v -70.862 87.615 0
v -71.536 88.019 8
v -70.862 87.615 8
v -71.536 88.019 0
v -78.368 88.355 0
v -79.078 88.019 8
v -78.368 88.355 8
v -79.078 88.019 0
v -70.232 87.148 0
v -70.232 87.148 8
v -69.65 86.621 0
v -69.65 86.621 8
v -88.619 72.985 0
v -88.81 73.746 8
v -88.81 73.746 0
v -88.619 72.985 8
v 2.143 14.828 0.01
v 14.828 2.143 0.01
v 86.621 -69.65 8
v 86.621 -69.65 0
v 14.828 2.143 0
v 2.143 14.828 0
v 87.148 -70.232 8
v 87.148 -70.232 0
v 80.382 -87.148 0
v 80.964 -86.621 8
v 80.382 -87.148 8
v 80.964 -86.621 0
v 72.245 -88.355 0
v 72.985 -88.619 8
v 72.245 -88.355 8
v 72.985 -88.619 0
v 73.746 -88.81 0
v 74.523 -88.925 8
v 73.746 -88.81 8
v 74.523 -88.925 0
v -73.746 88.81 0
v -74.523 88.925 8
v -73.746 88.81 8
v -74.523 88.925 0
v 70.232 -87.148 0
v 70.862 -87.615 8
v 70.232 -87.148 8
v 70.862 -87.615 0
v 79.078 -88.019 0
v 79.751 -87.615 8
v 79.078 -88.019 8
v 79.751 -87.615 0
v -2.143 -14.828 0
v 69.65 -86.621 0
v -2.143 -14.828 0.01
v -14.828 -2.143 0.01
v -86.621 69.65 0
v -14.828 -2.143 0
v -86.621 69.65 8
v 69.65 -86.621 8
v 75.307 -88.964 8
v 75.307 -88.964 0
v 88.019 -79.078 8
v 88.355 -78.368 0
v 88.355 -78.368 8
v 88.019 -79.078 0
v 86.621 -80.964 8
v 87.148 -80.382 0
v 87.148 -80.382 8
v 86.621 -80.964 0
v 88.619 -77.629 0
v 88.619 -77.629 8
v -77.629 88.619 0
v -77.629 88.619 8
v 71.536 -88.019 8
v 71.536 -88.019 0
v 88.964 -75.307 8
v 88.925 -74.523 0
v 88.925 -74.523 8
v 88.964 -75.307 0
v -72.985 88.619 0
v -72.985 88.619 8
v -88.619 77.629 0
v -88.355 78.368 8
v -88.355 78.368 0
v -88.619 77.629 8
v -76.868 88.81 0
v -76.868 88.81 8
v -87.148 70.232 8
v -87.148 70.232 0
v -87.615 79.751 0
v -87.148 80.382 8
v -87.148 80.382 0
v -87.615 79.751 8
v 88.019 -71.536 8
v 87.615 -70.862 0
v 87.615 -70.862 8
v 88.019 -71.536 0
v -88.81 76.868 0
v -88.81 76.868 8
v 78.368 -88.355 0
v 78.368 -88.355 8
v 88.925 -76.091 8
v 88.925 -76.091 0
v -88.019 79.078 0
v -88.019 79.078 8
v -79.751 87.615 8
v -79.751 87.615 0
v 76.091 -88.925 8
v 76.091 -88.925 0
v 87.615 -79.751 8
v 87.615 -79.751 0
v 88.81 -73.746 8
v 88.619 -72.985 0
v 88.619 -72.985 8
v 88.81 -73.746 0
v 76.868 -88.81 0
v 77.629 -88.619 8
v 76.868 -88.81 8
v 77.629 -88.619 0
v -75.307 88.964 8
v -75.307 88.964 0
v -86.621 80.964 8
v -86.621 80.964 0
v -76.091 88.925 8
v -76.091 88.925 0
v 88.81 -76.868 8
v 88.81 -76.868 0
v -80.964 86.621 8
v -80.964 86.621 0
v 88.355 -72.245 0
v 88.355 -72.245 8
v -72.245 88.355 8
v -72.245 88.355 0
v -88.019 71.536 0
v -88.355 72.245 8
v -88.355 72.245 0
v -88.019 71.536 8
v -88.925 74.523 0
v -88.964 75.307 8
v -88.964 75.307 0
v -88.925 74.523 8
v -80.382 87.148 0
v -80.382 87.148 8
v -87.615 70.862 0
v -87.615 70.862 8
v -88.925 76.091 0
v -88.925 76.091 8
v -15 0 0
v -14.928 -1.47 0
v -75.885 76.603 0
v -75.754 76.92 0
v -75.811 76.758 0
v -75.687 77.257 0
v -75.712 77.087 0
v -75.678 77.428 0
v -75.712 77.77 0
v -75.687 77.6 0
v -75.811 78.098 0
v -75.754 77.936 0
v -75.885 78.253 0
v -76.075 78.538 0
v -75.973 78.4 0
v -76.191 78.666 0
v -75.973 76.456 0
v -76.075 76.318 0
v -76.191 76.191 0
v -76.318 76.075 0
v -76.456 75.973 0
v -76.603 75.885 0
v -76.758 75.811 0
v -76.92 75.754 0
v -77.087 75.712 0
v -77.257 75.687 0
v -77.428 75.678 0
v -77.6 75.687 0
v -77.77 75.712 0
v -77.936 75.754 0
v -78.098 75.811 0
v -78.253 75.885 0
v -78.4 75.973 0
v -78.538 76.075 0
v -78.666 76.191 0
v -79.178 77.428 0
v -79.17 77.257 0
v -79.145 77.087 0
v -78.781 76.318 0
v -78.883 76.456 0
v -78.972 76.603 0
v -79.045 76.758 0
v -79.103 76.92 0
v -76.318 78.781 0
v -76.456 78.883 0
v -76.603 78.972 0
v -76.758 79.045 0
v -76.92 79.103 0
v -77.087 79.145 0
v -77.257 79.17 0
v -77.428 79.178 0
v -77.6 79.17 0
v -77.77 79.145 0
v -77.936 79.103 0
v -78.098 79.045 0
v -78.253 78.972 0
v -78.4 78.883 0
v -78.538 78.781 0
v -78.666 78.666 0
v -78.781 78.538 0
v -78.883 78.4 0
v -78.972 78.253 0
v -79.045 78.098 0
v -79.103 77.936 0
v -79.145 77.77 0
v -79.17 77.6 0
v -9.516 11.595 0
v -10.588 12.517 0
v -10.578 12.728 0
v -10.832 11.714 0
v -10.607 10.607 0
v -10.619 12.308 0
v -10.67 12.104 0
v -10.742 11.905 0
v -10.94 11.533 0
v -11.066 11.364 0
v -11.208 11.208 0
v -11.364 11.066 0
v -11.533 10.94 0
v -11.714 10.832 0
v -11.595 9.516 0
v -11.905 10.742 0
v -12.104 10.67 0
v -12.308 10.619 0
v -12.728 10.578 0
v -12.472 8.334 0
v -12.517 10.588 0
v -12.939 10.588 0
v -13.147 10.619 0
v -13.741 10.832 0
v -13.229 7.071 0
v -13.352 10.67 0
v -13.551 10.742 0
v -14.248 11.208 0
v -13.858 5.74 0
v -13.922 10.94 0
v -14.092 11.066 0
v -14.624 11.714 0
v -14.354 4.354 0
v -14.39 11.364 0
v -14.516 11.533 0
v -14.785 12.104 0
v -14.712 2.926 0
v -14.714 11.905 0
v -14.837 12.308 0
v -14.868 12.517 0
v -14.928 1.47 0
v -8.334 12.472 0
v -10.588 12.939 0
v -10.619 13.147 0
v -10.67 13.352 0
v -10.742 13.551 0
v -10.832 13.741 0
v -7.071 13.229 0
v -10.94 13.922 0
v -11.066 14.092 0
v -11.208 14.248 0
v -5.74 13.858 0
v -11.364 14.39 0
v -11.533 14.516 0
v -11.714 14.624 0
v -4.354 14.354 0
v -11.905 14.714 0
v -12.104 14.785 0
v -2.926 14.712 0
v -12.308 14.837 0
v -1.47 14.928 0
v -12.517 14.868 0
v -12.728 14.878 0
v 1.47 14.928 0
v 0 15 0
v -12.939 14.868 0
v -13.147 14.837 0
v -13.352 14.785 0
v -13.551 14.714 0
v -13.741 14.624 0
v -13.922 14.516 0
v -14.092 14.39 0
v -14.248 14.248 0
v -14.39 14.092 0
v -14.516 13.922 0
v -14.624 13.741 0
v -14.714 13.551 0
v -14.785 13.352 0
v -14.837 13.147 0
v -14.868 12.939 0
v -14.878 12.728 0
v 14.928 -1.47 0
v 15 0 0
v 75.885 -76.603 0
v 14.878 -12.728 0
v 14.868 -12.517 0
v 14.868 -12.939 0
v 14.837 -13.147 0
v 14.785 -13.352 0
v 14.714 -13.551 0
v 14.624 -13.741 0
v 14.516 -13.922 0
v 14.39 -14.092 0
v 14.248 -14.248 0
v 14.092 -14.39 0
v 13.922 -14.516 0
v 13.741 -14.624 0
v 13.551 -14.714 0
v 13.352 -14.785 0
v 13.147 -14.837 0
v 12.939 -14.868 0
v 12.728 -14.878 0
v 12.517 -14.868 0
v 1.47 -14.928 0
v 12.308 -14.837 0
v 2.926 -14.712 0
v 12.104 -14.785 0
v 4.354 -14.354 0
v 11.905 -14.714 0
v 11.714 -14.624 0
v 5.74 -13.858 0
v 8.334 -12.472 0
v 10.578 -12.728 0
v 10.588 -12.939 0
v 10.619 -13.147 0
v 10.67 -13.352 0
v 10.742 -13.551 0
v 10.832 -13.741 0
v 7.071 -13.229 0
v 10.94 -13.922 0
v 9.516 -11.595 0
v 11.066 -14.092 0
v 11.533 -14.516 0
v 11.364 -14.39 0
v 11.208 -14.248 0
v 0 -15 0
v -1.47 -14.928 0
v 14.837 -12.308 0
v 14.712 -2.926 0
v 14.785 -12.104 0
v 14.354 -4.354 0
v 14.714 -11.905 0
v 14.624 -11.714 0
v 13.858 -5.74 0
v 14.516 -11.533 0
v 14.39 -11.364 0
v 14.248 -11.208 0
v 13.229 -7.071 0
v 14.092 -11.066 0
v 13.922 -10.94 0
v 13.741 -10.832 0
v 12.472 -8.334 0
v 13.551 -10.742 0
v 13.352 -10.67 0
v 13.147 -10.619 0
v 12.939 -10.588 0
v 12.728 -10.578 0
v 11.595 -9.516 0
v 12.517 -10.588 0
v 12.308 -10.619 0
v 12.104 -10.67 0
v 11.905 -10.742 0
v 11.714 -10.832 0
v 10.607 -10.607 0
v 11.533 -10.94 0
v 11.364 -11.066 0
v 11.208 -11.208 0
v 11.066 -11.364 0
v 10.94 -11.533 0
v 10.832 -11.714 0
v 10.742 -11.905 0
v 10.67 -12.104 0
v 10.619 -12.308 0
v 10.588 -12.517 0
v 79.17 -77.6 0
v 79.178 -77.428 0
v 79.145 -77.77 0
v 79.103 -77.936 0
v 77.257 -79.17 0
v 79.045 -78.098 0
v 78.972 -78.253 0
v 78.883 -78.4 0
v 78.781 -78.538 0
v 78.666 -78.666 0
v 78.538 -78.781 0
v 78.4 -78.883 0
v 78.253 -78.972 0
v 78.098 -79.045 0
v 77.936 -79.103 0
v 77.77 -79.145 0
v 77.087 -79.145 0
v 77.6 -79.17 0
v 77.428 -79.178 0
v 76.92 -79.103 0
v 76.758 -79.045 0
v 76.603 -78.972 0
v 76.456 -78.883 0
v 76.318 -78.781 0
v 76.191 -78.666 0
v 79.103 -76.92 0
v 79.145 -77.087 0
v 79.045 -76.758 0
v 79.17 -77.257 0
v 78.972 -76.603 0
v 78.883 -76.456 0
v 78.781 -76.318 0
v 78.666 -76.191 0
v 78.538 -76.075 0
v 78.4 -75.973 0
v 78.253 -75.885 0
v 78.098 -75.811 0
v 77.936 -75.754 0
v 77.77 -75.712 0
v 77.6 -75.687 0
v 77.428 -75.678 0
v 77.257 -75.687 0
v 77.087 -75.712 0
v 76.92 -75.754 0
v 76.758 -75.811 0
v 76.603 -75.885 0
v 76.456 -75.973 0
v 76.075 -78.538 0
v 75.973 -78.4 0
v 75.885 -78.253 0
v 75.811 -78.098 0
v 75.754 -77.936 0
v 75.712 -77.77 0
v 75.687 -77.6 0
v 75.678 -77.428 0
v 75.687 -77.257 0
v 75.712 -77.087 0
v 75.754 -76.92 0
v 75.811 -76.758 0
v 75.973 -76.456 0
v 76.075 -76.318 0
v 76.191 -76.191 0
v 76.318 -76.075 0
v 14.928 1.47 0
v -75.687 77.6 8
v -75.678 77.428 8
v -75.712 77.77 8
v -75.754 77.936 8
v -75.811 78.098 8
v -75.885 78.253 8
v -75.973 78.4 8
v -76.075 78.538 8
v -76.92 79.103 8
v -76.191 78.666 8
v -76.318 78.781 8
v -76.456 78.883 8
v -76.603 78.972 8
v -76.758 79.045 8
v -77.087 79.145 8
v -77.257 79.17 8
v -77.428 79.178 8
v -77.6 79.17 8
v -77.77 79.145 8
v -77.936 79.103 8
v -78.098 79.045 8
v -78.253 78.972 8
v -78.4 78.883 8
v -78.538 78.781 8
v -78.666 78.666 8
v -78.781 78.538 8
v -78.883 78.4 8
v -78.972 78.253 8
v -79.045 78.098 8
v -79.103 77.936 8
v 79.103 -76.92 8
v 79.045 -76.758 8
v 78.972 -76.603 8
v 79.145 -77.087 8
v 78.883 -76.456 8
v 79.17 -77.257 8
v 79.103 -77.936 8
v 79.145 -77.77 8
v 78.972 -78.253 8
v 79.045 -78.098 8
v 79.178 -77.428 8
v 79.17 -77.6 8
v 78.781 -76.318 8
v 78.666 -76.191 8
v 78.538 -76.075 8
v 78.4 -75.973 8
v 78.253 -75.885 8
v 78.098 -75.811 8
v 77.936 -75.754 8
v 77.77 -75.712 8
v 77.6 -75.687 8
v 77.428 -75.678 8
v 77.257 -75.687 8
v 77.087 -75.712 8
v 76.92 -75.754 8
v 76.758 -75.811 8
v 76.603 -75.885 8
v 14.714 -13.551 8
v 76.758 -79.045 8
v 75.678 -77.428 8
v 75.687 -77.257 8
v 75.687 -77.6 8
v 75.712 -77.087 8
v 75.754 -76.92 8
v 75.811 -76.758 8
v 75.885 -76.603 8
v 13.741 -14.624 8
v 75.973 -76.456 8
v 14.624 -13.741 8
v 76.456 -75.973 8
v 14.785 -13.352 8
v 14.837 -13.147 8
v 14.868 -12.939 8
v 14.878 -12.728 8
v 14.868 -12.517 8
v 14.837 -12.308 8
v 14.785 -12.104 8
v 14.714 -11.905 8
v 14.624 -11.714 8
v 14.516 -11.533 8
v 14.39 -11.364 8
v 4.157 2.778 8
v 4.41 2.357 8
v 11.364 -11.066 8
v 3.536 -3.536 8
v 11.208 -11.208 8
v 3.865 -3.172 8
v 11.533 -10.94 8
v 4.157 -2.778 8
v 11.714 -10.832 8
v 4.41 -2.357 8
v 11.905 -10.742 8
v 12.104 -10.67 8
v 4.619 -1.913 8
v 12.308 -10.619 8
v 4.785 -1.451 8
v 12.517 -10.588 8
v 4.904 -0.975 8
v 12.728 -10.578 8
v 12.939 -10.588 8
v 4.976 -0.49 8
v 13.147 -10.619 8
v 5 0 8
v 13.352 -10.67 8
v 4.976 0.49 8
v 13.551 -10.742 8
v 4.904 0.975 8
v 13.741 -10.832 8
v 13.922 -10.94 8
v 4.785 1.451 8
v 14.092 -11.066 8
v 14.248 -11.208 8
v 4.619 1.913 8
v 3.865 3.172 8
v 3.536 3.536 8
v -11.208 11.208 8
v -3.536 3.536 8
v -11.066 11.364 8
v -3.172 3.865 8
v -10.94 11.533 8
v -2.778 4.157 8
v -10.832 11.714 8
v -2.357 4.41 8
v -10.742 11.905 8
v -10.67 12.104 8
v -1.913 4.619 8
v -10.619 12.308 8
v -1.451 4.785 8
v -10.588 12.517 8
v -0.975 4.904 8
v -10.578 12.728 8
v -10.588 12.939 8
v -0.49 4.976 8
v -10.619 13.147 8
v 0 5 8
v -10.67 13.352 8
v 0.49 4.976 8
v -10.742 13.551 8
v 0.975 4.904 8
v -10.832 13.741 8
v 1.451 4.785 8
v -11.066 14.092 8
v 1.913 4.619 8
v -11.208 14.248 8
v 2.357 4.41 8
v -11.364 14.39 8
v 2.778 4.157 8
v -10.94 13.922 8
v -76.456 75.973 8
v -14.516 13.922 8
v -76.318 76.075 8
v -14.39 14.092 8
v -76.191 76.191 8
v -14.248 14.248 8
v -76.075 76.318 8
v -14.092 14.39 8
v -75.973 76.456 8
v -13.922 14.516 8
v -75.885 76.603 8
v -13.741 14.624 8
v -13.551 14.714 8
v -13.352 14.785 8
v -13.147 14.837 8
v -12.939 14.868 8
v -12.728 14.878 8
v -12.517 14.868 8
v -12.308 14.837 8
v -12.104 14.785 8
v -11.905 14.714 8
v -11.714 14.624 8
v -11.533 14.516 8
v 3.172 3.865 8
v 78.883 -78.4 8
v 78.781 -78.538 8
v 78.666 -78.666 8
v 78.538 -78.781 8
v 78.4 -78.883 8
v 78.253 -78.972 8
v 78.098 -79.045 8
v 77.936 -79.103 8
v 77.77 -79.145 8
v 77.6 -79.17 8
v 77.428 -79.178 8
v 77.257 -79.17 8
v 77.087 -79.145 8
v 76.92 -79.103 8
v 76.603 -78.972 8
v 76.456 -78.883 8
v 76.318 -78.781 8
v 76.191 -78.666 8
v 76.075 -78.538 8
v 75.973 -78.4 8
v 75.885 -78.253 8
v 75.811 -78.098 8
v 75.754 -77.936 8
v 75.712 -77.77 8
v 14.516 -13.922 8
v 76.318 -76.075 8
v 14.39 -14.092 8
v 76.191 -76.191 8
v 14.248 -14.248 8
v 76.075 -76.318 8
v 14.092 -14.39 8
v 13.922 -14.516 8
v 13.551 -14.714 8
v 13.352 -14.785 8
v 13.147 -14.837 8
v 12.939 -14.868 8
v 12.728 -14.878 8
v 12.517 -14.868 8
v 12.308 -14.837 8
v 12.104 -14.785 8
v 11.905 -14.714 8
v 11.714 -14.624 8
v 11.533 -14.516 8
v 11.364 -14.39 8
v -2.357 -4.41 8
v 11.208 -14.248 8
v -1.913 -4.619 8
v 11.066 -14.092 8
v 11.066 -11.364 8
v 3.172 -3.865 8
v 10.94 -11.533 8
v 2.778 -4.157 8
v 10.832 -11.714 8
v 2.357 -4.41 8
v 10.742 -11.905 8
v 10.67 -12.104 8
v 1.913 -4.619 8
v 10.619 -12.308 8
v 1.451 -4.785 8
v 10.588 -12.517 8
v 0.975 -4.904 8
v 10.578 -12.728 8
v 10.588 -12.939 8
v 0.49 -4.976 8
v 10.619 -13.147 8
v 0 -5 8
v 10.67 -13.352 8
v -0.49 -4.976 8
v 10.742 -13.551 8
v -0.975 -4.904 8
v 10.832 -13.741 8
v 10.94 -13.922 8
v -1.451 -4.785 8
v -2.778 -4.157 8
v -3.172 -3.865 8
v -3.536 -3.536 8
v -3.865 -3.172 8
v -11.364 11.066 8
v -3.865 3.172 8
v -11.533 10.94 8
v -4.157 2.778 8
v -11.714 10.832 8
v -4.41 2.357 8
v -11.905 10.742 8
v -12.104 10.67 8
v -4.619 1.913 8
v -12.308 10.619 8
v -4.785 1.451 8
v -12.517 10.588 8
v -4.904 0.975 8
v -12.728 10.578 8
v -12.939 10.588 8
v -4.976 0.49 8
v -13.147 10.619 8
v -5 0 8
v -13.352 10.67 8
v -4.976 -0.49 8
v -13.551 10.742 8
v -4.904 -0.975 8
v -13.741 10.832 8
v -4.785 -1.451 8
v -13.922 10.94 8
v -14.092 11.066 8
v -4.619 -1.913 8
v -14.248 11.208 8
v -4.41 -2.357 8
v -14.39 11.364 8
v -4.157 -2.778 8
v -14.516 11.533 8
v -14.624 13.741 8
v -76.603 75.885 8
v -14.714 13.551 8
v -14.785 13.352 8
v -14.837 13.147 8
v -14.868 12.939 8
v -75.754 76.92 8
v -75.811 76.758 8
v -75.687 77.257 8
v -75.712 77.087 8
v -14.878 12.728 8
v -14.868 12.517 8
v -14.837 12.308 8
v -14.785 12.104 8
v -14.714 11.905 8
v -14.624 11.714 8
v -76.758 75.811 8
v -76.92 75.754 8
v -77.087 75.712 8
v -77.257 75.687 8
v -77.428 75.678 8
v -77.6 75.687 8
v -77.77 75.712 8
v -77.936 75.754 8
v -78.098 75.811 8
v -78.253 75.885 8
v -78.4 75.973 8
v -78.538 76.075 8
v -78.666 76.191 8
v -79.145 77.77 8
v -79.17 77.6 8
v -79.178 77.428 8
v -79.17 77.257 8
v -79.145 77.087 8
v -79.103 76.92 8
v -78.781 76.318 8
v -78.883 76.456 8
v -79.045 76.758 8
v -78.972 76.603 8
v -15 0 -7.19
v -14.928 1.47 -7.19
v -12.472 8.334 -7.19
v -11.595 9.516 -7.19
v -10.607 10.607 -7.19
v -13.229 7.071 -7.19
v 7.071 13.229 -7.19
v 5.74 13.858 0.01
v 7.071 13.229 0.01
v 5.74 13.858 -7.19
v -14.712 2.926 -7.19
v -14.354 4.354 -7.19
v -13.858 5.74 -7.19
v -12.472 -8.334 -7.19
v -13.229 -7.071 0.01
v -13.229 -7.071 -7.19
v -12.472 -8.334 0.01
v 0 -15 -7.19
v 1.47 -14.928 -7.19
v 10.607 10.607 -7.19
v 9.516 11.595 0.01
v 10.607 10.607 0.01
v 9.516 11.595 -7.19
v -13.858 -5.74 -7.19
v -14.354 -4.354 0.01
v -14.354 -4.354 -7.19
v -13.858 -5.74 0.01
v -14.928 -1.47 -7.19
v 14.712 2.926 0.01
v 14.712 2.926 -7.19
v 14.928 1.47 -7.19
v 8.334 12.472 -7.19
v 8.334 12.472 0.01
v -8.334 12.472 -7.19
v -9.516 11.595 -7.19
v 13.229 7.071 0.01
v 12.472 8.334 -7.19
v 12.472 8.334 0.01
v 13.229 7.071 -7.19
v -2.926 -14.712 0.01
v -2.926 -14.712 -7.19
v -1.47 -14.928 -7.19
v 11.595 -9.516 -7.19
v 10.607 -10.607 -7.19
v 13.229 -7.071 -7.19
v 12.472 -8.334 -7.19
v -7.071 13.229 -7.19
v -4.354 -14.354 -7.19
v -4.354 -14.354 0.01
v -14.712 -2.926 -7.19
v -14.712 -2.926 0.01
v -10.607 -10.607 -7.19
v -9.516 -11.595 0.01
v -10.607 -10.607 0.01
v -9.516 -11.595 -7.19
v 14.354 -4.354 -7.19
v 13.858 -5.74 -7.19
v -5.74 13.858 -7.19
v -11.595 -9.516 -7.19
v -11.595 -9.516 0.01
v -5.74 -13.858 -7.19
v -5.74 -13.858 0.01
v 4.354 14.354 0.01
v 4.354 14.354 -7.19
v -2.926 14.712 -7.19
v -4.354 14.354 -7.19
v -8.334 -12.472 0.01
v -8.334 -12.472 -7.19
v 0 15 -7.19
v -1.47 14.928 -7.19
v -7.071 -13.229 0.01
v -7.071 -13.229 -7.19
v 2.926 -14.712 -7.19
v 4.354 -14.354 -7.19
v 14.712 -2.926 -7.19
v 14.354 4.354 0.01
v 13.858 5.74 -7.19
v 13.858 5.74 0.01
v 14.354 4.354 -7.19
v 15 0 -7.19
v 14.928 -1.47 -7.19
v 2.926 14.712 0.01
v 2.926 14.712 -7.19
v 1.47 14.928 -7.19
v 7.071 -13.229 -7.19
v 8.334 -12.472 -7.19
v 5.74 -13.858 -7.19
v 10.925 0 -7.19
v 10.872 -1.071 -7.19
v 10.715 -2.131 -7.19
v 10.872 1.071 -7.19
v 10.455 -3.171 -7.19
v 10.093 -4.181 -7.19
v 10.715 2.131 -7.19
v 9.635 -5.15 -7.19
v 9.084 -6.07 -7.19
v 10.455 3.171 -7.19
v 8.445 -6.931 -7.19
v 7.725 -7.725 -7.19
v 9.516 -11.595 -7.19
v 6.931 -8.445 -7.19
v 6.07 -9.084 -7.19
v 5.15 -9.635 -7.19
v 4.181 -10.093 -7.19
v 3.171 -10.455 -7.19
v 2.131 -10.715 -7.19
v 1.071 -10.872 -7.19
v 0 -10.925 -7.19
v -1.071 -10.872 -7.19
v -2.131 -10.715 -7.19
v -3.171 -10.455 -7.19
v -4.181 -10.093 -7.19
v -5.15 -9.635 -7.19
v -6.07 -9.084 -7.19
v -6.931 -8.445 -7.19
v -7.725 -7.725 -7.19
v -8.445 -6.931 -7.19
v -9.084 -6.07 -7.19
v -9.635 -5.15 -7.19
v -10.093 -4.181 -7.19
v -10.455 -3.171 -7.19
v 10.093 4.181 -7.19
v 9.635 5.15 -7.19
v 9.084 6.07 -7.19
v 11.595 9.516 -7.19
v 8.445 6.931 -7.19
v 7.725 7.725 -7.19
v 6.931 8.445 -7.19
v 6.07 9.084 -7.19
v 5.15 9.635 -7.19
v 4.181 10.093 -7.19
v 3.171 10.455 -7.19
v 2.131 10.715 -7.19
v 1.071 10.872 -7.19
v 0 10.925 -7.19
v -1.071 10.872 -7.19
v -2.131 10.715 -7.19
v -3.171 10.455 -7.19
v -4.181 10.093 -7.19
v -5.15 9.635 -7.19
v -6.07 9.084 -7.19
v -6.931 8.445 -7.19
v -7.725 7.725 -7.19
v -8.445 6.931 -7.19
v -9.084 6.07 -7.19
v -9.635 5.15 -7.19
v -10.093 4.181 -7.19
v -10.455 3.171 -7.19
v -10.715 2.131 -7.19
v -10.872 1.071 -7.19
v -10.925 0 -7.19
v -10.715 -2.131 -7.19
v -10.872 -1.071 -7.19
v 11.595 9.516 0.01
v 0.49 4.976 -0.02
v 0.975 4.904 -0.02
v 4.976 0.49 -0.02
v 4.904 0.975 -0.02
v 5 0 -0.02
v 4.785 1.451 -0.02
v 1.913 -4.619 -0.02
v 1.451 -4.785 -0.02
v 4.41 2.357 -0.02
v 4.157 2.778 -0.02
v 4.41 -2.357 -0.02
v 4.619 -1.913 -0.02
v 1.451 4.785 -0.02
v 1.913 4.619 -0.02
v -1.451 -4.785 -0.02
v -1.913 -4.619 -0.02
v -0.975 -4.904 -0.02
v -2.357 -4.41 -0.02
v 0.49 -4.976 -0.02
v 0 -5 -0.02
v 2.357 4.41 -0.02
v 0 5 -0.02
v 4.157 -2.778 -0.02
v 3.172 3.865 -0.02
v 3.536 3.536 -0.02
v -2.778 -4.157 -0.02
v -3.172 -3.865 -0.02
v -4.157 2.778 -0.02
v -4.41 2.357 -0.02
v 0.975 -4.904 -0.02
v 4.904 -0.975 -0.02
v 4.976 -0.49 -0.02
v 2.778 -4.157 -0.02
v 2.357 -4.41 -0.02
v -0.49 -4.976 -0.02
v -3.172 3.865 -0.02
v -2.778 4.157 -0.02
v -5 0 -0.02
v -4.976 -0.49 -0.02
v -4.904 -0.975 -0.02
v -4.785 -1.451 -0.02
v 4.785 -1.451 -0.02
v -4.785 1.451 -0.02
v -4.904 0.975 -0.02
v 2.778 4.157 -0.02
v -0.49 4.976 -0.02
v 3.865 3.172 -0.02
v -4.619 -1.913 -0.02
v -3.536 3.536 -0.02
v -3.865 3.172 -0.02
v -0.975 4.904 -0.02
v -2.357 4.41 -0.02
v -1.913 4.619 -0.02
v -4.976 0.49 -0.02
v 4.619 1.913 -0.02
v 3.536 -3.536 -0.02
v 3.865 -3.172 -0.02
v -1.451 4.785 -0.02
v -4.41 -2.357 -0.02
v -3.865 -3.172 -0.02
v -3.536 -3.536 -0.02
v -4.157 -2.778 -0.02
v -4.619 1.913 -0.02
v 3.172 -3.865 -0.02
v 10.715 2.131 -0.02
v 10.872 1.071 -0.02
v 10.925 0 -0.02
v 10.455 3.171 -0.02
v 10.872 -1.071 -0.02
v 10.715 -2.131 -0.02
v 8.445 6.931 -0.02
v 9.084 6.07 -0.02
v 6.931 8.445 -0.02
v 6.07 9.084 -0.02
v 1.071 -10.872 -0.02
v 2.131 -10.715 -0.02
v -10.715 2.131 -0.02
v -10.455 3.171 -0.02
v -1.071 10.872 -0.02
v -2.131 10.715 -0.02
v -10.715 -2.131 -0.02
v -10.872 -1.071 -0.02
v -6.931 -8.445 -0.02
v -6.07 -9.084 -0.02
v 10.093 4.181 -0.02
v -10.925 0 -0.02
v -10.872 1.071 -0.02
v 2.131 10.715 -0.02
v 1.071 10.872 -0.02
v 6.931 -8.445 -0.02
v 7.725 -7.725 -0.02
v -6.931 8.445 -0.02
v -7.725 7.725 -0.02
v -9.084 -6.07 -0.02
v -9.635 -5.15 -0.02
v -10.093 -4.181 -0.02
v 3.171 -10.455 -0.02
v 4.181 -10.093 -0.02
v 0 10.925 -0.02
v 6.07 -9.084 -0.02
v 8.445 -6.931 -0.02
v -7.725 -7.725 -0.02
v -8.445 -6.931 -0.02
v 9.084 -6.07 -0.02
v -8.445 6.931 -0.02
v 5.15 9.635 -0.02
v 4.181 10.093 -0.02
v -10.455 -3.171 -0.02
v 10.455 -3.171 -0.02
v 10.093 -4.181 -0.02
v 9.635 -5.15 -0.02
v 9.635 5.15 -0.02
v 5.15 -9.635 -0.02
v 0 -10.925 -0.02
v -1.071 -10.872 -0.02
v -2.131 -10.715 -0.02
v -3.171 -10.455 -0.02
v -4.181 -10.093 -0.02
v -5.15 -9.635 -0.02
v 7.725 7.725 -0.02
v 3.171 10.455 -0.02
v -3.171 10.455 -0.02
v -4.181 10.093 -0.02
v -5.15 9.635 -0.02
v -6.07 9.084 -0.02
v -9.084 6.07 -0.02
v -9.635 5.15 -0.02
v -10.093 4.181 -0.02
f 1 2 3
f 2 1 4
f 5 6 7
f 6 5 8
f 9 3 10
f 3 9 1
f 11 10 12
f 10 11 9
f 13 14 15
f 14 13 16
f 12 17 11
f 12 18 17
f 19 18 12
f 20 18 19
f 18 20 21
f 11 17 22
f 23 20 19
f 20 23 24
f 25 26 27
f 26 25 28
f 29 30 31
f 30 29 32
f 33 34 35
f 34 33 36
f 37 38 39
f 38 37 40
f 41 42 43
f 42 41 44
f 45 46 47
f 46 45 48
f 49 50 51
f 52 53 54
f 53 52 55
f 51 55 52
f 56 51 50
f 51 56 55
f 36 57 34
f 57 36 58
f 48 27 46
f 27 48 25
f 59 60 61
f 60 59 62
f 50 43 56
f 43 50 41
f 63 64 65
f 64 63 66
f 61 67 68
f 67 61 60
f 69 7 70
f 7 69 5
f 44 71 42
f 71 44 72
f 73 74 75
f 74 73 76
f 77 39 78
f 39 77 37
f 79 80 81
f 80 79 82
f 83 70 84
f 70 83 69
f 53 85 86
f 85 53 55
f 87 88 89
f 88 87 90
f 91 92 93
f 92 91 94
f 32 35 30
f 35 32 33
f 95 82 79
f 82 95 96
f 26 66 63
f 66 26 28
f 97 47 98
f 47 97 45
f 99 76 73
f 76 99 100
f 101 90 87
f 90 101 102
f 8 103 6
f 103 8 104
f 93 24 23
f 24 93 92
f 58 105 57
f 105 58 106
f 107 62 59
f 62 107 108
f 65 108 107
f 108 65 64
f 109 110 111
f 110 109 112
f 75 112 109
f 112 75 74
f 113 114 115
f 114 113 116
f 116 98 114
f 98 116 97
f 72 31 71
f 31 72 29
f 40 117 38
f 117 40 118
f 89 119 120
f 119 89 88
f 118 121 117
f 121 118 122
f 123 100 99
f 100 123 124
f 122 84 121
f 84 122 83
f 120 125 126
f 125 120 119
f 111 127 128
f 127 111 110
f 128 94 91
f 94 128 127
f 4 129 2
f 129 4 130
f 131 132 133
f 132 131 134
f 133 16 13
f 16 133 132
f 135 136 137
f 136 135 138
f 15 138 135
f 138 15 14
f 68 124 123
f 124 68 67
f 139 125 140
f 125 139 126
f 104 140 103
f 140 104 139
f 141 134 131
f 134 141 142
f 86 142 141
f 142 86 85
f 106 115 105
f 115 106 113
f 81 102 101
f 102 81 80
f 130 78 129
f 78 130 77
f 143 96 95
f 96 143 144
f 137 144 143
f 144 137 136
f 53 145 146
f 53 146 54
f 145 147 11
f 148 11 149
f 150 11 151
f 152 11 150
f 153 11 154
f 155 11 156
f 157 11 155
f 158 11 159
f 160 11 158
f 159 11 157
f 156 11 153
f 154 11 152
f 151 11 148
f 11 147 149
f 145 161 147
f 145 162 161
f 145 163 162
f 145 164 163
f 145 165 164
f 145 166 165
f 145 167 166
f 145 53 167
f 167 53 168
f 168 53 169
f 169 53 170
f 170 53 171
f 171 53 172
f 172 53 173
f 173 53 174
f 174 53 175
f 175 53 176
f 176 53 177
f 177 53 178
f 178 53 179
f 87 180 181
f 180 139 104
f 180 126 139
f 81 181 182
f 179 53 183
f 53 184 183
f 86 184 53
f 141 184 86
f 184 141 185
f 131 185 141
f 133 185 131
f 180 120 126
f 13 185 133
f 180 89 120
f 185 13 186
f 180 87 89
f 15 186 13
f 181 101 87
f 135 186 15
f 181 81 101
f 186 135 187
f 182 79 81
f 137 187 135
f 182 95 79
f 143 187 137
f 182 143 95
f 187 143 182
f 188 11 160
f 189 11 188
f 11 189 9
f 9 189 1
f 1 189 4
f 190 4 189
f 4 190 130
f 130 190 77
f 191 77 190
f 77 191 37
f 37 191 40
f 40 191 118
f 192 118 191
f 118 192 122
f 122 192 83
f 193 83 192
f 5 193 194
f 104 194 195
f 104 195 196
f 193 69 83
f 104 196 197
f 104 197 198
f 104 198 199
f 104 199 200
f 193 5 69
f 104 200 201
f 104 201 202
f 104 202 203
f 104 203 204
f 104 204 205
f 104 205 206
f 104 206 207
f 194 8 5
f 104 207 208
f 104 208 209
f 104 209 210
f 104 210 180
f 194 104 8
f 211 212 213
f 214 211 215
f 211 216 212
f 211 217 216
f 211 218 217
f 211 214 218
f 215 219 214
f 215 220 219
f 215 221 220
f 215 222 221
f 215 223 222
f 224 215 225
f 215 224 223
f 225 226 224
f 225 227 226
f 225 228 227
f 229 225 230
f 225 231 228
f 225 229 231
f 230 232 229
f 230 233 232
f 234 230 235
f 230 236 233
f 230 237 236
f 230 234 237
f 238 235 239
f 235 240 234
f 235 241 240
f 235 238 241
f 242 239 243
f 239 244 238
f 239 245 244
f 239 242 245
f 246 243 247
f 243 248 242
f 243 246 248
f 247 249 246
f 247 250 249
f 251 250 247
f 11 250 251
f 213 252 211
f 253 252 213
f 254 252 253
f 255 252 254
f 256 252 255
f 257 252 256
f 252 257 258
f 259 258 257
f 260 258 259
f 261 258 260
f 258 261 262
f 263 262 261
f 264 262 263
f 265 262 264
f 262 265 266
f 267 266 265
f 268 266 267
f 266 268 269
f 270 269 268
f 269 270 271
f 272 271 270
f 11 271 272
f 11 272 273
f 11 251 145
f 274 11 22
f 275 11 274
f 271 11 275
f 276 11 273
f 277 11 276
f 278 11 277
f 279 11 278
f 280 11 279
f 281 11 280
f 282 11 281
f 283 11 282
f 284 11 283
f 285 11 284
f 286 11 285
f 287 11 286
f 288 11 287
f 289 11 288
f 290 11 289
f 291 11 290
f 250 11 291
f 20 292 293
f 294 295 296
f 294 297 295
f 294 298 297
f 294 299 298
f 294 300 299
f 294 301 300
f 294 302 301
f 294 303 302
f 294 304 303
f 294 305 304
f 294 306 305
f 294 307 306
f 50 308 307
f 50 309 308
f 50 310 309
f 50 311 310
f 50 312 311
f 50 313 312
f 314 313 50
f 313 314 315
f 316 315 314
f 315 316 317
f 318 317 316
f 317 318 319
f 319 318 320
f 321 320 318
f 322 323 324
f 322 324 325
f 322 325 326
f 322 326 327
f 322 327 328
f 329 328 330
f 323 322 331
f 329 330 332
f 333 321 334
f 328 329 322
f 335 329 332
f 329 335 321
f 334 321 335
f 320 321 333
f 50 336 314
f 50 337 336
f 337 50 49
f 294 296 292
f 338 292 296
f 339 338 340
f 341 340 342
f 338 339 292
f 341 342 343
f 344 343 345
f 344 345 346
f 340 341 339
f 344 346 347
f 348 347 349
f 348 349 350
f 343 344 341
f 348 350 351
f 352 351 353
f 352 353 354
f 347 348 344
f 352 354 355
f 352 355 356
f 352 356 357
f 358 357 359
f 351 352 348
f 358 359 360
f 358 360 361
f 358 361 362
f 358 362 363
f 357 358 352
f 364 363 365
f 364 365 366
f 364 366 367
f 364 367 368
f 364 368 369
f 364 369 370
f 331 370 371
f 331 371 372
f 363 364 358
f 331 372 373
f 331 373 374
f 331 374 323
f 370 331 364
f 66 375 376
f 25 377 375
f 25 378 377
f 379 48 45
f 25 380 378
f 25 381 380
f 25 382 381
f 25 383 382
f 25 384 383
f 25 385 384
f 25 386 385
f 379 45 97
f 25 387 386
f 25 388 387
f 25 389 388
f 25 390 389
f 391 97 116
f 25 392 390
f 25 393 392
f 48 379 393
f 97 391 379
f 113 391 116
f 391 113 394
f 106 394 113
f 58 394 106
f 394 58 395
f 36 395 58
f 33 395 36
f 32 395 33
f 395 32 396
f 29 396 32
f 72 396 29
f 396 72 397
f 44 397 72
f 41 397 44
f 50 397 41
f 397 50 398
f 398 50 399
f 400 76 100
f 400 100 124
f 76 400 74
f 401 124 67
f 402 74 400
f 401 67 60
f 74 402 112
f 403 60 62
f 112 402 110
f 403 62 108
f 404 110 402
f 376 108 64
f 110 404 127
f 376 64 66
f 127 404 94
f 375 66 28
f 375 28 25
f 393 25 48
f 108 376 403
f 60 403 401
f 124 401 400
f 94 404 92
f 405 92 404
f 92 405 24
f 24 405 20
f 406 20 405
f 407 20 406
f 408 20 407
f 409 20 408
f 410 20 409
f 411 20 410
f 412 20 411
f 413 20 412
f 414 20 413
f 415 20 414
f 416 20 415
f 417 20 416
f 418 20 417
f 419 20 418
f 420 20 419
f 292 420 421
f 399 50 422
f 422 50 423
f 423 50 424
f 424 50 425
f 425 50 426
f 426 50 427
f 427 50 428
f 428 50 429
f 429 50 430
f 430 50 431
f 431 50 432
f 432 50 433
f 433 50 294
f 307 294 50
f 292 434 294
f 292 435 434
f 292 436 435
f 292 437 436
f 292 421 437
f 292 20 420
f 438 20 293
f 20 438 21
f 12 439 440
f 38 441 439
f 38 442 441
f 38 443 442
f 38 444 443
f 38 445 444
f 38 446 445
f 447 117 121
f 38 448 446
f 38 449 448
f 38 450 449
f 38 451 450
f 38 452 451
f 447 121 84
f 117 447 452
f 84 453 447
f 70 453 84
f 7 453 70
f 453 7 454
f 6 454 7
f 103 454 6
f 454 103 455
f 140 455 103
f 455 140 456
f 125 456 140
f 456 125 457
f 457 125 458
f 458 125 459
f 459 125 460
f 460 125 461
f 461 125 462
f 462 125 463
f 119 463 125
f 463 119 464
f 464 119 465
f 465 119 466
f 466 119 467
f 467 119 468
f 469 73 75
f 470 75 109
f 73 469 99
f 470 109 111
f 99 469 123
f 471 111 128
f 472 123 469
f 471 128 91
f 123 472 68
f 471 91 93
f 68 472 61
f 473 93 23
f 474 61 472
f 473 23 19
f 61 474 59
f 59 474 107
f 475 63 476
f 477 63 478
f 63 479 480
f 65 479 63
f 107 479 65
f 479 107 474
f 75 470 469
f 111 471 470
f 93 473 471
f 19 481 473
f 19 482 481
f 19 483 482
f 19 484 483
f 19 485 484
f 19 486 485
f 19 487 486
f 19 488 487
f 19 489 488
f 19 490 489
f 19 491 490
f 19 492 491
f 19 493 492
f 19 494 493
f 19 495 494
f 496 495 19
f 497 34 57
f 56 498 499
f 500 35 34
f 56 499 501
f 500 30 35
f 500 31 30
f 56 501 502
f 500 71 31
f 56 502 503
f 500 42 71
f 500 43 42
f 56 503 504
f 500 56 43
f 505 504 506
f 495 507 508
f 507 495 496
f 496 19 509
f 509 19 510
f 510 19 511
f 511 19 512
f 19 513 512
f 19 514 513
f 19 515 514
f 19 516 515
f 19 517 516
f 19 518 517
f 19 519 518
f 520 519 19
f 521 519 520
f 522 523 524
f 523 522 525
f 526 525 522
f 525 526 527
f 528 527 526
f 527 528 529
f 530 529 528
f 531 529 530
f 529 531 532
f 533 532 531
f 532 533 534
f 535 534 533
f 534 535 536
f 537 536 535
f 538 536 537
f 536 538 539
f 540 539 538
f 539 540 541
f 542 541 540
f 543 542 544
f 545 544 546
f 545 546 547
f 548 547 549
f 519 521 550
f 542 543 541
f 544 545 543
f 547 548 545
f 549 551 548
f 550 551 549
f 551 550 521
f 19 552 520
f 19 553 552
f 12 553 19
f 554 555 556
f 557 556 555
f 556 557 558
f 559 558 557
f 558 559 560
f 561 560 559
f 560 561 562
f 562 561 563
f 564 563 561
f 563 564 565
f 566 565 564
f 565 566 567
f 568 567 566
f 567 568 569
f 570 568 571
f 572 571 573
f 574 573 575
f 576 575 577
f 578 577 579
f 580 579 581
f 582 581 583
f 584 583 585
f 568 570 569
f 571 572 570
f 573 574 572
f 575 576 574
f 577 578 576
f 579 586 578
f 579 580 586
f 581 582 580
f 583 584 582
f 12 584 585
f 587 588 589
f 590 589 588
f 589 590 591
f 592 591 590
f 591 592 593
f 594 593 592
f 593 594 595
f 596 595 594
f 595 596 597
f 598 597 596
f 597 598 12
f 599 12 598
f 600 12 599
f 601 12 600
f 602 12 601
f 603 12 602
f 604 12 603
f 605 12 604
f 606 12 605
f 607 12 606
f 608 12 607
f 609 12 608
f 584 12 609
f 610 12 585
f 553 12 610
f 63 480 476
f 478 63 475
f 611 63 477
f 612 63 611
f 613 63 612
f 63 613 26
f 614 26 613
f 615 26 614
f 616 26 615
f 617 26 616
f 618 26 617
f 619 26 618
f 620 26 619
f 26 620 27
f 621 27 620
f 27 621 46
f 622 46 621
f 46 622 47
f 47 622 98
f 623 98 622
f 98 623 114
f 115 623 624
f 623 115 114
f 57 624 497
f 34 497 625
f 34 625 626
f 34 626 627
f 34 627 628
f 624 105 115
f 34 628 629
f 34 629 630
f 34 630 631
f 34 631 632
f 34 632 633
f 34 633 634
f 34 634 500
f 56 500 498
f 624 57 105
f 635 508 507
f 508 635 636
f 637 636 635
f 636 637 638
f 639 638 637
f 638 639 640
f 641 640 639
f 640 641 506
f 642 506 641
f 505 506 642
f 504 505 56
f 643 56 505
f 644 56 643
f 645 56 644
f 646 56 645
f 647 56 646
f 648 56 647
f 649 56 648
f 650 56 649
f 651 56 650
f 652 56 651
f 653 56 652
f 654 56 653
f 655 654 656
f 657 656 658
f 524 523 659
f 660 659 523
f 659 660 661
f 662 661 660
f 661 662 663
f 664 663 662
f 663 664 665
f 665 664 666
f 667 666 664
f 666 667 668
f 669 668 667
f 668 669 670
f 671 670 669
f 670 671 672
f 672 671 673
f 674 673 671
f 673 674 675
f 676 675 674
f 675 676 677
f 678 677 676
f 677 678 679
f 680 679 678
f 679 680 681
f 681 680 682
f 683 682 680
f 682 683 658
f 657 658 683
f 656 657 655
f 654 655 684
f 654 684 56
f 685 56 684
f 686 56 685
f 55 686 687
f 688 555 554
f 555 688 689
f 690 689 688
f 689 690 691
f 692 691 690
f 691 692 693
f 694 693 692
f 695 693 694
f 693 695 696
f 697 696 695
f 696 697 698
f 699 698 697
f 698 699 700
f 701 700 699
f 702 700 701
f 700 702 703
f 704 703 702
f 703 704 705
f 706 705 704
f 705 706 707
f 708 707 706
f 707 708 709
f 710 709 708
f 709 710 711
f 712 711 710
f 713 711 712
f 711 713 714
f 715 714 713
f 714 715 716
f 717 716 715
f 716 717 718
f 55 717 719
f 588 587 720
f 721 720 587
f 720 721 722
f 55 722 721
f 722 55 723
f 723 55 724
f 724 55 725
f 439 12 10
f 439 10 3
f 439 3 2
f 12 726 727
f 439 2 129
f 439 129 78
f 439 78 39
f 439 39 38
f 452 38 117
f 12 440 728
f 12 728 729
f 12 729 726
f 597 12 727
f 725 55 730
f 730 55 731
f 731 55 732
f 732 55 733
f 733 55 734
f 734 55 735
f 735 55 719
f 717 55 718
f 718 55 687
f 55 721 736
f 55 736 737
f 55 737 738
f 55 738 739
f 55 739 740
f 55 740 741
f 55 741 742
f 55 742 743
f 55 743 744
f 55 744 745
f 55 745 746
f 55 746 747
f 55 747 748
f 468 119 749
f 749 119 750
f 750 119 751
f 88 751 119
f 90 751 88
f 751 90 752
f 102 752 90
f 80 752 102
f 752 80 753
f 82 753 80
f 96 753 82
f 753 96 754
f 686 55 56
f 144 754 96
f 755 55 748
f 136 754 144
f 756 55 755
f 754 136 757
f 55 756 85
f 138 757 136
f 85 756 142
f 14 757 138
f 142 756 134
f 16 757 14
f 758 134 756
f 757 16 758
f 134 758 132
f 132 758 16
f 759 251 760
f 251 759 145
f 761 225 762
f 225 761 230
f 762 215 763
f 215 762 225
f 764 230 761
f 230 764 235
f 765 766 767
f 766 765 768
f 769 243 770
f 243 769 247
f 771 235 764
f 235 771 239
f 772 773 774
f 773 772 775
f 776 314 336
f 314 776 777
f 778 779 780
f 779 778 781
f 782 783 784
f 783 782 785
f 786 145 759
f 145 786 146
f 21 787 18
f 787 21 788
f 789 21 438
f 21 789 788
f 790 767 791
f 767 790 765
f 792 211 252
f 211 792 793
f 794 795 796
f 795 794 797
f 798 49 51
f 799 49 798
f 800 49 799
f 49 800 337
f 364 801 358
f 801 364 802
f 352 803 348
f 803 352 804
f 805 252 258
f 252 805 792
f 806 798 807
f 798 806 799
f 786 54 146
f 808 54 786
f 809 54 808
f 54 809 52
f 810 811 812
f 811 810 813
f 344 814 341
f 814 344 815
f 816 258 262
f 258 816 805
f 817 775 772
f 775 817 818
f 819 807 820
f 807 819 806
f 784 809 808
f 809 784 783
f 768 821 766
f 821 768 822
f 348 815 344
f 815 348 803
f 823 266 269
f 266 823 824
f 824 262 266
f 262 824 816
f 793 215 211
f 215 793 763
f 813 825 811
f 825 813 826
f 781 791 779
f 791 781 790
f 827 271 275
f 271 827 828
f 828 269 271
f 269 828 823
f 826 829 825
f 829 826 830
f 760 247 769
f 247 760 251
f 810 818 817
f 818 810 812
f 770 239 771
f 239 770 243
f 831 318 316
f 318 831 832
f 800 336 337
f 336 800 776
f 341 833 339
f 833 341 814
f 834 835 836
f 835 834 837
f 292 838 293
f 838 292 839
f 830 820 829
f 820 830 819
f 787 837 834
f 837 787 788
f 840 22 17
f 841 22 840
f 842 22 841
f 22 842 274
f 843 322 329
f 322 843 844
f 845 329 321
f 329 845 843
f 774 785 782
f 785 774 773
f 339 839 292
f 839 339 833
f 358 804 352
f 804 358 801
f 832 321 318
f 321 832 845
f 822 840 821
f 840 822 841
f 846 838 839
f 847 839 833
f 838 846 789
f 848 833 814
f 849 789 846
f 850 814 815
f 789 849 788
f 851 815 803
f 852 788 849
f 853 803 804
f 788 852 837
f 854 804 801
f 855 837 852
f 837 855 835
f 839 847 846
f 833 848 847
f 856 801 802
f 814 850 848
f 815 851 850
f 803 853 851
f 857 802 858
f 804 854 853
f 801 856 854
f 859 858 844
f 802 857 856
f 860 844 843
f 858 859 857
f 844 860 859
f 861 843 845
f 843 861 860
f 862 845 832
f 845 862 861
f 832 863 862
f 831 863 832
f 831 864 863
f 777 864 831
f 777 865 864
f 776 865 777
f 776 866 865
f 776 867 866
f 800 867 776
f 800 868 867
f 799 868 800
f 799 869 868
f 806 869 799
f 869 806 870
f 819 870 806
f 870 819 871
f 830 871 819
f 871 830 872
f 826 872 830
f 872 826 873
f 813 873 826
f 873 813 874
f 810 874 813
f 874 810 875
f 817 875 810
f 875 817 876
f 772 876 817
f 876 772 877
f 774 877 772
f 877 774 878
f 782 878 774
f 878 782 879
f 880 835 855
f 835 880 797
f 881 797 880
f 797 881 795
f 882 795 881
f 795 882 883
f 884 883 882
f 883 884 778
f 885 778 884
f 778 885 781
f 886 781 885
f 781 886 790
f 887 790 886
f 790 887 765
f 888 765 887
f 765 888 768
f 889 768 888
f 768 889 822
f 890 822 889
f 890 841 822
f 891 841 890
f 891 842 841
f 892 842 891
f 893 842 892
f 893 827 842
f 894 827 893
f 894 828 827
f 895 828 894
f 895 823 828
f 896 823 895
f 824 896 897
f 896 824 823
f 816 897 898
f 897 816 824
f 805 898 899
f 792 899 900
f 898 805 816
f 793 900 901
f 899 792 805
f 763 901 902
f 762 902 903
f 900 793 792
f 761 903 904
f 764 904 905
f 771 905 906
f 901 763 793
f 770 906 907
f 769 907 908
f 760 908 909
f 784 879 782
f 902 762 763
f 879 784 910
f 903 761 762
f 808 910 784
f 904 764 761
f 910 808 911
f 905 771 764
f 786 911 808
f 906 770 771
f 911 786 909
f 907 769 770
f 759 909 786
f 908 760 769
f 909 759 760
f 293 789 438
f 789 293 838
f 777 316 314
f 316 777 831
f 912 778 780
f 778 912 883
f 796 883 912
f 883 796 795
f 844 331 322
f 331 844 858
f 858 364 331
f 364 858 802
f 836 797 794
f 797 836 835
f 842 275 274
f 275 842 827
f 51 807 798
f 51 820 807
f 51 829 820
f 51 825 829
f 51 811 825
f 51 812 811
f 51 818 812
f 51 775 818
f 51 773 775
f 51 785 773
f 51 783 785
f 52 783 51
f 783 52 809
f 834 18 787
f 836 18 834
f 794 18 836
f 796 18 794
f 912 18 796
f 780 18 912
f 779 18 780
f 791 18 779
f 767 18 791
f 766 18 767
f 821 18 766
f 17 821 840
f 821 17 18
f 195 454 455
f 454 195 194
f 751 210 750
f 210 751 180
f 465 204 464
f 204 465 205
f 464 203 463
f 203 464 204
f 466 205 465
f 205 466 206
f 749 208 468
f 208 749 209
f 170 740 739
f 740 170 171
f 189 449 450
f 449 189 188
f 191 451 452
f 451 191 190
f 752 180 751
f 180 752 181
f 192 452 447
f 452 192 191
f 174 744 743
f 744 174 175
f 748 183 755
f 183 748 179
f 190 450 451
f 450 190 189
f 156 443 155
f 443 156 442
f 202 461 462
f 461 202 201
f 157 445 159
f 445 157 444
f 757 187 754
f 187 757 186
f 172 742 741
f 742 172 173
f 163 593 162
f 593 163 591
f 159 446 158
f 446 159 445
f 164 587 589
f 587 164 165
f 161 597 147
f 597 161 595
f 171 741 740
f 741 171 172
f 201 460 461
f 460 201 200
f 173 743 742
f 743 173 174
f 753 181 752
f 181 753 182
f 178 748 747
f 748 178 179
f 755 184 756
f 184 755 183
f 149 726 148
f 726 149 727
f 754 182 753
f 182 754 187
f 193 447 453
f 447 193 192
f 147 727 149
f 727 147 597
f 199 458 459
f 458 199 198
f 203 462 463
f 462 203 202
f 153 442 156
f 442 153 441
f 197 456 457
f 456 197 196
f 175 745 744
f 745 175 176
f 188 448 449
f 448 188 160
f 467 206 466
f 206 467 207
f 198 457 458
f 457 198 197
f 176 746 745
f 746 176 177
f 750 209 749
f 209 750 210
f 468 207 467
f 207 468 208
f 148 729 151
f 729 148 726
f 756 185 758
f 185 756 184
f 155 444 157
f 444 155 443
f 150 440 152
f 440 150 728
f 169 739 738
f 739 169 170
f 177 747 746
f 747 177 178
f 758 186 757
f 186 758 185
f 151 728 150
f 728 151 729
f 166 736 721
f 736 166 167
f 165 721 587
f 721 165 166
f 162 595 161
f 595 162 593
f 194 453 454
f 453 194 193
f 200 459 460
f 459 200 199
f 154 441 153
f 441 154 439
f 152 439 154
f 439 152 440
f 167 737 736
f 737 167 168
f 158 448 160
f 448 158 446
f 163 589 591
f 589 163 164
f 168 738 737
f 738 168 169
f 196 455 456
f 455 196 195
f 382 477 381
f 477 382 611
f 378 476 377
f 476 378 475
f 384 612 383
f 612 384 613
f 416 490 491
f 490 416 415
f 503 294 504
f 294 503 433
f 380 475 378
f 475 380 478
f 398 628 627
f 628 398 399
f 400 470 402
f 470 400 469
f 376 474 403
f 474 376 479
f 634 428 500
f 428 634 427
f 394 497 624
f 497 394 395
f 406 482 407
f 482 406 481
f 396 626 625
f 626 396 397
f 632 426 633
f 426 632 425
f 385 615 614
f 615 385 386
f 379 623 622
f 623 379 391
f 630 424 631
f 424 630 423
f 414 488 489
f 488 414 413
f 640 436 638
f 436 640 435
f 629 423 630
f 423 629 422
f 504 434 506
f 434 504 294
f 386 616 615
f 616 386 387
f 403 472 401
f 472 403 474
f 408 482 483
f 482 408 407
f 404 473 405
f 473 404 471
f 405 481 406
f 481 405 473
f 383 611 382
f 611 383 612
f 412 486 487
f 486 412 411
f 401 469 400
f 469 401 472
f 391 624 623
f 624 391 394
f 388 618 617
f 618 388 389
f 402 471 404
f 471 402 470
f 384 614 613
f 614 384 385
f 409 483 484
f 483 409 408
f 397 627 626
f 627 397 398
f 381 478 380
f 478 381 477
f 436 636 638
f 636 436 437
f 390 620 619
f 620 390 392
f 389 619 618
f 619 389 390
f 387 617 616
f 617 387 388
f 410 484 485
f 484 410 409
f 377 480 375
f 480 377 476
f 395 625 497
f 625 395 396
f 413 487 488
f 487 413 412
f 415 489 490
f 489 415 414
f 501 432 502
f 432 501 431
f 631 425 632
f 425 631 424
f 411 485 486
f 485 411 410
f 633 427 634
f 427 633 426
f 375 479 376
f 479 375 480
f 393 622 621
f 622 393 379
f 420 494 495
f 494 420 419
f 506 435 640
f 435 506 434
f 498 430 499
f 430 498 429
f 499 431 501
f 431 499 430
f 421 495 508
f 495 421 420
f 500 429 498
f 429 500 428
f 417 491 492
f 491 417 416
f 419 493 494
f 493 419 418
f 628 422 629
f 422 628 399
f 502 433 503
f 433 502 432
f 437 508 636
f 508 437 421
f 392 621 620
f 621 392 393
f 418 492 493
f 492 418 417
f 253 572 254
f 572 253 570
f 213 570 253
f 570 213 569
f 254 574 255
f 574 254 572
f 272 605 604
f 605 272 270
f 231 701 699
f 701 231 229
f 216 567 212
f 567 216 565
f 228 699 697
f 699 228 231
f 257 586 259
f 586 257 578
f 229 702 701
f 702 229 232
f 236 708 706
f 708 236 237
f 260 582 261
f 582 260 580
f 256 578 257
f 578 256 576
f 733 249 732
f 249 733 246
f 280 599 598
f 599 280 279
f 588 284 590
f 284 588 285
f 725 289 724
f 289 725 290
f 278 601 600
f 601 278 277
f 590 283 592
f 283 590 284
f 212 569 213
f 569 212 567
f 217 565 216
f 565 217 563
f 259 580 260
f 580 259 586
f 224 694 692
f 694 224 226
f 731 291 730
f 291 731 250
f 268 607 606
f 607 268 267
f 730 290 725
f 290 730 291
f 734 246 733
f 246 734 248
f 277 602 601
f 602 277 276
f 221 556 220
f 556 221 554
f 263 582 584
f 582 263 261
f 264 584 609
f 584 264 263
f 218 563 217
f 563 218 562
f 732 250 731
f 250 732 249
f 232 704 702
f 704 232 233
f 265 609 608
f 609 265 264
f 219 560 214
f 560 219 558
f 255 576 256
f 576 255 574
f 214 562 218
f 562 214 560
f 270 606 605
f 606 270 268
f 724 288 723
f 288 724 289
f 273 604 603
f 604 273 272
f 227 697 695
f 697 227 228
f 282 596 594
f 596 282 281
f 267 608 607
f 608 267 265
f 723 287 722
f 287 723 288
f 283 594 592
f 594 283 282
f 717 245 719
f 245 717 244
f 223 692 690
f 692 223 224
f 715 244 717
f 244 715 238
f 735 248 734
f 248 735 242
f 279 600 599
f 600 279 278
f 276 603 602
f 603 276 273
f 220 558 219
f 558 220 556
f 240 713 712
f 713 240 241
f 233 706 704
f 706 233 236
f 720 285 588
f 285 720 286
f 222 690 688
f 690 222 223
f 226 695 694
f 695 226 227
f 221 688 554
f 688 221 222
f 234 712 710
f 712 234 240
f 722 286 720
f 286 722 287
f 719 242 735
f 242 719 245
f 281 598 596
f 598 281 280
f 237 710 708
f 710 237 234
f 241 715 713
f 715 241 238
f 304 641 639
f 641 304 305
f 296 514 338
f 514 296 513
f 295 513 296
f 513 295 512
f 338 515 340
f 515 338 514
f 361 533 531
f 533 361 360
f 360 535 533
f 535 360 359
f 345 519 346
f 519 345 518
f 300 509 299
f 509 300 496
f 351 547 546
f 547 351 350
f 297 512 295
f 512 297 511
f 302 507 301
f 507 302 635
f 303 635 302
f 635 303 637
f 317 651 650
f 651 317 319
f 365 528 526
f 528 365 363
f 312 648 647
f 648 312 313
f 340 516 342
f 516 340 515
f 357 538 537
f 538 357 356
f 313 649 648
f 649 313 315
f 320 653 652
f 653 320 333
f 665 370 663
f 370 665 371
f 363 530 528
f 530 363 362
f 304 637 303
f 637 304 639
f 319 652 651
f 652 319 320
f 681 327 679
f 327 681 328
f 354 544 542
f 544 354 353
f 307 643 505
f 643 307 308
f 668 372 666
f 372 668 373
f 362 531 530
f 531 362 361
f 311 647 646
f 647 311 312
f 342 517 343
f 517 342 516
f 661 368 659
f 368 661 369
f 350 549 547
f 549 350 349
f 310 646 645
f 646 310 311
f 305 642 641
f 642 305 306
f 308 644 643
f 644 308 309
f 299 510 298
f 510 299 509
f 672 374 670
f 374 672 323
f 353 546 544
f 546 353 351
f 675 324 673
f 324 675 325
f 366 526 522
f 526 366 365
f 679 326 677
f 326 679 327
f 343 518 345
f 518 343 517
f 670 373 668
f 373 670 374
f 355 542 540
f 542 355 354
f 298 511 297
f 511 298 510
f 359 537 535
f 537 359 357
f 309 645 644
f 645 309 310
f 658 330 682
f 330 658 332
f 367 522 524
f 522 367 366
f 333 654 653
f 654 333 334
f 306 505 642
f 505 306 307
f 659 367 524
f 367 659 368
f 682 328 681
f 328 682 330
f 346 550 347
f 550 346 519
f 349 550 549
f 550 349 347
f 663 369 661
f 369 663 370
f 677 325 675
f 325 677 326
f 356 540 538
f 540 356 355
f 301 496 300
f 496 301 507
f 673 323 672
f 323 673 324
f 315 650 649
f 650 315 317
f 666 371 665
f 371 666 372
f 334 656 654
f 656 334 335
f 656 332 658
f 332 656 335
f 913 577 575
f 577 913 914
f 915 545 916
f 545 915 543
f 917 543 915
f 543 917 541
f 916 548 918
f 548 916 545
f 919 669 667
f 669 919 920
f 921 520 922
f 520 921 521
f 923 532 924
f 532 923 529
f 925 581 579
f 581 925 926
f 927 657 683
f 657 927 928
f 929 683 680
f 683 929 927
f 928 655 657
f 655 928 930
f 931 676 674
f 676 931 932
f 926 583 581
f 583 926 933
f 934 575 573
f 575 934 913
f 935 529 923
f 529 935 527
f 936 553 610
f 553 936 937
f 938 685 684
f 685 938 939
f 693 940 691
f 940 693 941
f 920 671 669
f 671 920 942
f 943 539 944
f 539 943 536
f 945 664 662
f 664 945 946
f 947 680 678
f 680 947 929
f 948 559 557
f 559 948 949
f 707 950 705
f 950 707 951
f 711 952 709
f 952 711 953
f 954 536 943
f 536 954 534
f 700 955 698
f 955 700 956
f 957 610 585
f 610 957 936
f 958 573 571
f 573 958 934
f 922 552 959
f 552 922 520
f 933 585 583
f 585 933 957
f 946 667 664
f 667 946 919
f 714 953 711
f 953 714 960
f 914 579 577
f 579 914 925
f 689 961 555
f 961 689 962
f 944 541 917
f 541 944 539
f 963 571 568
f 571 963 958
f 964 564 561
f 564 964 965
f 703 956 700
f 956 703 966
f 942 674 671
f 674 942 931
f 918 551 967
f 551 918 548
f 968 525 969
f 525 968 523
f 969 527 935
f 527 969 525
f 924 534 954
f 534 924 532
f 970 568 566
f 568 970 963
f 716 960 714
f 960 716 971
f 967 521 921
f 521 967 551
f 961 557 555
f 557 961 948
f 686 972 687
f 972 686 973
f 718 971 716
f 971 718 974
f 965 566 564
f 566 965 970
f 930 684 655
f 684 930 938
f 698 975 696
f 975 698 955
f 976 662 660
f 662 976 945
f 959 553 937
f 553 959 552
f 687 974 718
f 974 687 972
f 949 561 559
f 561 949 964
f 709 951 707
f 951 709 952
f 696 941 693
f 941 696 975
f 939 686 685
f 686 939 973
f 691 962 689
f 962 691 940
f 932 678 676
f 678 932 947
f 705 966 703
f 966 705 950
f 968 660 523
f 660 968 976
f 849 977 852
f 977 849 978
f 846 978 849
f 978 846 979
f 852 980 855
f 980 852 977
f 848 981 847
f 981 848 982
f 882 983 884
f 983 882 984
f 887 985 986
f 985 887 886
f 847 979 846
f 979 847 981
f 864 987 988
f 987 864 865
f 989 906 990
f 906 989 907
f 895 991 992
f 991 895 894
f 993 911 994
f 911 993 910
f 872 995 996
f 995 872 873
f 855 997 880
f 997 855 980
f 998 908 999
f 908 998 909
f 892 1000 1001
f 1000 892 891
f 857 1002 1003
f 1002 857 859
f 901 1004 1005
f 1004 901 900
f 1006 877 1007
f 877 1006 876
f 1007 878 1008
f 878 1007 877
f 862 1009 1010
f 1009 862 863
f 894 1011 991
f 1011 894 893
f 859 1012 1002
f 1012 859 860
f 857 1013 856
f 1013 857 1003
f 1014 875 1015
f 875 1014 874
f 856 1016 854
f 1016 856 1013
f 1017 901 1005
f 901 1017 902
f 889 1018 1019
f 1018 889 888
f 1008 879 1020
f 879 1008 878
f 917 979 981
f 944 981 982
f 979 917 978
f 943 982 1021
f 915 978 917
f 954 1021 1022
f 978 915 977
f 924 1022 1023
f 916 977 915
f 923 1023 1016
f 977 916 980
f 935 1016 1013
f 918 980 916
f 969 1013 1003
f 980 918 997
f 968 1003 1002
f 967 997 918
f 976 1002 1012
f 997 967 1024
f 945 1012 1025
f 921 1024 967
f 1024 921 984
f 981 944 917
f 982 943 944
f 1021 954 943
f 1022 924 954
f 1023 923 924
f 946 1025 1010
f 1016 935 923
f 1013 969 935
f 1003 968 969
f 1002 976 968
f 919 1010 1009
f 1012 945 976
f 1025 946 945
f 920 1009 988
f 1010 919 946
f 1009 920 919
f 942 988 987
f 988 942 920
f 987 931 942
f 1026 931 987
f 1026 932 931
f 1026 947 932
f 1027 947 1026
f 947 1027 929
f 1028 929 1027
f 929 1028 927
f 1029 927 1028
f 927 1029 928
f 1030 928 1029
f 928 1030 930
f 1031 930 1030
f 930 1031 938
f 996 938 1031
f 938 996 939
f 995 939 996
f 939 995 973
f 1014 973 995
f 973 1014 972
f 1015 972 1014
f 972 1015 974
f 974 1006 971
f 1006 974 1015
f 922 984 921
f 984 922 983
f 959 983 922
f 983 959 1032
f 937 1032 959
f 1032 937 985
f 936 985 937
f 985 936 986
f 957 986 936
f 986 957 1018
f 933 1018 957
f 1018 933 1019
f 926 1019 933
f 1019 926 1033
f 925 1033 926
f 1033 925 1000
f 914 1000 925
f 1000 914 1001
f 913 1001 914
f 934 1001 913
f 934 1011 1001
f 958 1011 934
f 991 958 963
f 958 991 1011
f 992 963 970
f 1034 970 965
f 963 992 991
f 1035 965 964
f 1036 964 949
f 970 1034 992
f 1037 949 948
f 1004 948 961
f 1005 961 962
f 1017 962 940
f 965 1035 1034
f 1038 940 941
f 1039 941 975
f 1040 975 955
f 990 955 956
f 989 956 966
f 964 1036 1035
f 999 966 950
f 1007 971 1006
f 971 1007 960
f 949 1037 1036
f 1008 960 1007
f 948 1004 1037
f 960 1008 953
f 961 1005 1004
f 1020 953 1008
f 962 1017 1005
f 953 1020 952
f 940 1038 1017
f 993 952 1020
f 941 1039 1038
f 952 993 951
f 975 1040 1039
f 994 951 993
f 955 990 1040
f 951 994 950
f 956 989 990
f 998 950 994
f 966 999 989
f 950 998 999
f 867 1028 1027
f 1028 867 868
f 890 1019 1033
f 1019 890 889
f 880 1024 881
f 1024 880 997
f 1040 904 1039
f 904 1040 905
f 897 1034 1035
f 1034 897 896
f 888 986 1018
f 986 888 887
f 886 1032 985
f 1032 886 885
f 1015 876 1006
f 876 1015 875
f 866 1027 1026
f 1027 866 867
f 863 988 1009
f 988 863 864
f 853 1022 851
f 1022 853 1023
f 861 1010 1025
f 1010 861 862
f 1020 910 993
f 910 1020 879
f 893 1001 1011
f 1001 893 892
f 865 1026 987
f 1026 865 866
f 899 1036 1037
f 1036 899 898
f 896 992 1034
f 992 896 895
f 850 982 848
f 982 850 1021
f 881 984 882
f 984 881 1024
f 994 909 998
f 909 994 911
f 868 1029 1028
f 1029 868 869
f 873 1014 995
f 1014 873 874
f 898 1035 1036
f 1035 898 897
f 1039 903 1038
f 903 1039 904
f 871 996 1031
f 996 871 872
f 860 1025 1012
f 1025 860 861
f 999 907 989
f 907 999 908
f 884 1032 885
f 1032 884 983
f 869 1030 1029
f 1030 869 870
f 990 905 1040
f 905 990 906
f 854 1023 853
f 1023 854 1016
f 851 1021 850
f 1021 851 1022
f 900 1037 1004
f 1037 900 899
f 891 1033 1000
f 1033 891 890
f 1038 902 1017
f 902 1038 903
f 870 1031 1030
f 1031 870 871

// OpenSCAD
// Gen-CP — rear BEARING BRIDGE (bar endbell, 2026-10-10): a 608 boss on a 24 mm wide bar that spans the
// two frame rods at 135 deg and 135+180 deg (R = flange_bolt_r). The front bridge uses the rods at 45/225 deg, the rear
// bridge the rods at 135/315 deg, so the two bridges cross at 90 deg and the stator is held at 4 points.
// A bar instead of a full disc is what lets this big-ring kit fit ONE 410 mm plate. Print flat face DOWN (boss up, no supports).
// Brace holes (temporary M4 jack rods, R = brace_r) sit on the bar axis.
include <parameters.scad>;
$fn = 64;
bar_w = 24;
bar_len = 2 * (flange_bolt_r + 9);
module bar_2d() { offset(r=8) offset(delta=-8) square([bar_len, bar_w], center=true); }
difference() {
    rotate([0, 0, 135]) union() {
        linear_extrude(endbell_thick) bar_2d();
        translate([0, 0, -bearing_h + 0.01]) cylinder(d=30, h=bearing_h);
    }
    translate([0, 0, -bearing_h - 0.1]) cylinder(d=endbell_shaft_clear, h=50);
    translate([0, 0, -bearing_h - 0.02]) cylinder(d=bearing_d, h=bearing_h);
    for (s = [0, 180]) rotate([0, 0, 135 + s]) translate([flange_bolt_r, 0, -20]) cylinder(d=m3_clear, h=60);
    for (a = brace_angles) translate([brace_r*cos(a), brace_r*sin(a), -20]) cylinder(d=brace_d, h=50);
}
